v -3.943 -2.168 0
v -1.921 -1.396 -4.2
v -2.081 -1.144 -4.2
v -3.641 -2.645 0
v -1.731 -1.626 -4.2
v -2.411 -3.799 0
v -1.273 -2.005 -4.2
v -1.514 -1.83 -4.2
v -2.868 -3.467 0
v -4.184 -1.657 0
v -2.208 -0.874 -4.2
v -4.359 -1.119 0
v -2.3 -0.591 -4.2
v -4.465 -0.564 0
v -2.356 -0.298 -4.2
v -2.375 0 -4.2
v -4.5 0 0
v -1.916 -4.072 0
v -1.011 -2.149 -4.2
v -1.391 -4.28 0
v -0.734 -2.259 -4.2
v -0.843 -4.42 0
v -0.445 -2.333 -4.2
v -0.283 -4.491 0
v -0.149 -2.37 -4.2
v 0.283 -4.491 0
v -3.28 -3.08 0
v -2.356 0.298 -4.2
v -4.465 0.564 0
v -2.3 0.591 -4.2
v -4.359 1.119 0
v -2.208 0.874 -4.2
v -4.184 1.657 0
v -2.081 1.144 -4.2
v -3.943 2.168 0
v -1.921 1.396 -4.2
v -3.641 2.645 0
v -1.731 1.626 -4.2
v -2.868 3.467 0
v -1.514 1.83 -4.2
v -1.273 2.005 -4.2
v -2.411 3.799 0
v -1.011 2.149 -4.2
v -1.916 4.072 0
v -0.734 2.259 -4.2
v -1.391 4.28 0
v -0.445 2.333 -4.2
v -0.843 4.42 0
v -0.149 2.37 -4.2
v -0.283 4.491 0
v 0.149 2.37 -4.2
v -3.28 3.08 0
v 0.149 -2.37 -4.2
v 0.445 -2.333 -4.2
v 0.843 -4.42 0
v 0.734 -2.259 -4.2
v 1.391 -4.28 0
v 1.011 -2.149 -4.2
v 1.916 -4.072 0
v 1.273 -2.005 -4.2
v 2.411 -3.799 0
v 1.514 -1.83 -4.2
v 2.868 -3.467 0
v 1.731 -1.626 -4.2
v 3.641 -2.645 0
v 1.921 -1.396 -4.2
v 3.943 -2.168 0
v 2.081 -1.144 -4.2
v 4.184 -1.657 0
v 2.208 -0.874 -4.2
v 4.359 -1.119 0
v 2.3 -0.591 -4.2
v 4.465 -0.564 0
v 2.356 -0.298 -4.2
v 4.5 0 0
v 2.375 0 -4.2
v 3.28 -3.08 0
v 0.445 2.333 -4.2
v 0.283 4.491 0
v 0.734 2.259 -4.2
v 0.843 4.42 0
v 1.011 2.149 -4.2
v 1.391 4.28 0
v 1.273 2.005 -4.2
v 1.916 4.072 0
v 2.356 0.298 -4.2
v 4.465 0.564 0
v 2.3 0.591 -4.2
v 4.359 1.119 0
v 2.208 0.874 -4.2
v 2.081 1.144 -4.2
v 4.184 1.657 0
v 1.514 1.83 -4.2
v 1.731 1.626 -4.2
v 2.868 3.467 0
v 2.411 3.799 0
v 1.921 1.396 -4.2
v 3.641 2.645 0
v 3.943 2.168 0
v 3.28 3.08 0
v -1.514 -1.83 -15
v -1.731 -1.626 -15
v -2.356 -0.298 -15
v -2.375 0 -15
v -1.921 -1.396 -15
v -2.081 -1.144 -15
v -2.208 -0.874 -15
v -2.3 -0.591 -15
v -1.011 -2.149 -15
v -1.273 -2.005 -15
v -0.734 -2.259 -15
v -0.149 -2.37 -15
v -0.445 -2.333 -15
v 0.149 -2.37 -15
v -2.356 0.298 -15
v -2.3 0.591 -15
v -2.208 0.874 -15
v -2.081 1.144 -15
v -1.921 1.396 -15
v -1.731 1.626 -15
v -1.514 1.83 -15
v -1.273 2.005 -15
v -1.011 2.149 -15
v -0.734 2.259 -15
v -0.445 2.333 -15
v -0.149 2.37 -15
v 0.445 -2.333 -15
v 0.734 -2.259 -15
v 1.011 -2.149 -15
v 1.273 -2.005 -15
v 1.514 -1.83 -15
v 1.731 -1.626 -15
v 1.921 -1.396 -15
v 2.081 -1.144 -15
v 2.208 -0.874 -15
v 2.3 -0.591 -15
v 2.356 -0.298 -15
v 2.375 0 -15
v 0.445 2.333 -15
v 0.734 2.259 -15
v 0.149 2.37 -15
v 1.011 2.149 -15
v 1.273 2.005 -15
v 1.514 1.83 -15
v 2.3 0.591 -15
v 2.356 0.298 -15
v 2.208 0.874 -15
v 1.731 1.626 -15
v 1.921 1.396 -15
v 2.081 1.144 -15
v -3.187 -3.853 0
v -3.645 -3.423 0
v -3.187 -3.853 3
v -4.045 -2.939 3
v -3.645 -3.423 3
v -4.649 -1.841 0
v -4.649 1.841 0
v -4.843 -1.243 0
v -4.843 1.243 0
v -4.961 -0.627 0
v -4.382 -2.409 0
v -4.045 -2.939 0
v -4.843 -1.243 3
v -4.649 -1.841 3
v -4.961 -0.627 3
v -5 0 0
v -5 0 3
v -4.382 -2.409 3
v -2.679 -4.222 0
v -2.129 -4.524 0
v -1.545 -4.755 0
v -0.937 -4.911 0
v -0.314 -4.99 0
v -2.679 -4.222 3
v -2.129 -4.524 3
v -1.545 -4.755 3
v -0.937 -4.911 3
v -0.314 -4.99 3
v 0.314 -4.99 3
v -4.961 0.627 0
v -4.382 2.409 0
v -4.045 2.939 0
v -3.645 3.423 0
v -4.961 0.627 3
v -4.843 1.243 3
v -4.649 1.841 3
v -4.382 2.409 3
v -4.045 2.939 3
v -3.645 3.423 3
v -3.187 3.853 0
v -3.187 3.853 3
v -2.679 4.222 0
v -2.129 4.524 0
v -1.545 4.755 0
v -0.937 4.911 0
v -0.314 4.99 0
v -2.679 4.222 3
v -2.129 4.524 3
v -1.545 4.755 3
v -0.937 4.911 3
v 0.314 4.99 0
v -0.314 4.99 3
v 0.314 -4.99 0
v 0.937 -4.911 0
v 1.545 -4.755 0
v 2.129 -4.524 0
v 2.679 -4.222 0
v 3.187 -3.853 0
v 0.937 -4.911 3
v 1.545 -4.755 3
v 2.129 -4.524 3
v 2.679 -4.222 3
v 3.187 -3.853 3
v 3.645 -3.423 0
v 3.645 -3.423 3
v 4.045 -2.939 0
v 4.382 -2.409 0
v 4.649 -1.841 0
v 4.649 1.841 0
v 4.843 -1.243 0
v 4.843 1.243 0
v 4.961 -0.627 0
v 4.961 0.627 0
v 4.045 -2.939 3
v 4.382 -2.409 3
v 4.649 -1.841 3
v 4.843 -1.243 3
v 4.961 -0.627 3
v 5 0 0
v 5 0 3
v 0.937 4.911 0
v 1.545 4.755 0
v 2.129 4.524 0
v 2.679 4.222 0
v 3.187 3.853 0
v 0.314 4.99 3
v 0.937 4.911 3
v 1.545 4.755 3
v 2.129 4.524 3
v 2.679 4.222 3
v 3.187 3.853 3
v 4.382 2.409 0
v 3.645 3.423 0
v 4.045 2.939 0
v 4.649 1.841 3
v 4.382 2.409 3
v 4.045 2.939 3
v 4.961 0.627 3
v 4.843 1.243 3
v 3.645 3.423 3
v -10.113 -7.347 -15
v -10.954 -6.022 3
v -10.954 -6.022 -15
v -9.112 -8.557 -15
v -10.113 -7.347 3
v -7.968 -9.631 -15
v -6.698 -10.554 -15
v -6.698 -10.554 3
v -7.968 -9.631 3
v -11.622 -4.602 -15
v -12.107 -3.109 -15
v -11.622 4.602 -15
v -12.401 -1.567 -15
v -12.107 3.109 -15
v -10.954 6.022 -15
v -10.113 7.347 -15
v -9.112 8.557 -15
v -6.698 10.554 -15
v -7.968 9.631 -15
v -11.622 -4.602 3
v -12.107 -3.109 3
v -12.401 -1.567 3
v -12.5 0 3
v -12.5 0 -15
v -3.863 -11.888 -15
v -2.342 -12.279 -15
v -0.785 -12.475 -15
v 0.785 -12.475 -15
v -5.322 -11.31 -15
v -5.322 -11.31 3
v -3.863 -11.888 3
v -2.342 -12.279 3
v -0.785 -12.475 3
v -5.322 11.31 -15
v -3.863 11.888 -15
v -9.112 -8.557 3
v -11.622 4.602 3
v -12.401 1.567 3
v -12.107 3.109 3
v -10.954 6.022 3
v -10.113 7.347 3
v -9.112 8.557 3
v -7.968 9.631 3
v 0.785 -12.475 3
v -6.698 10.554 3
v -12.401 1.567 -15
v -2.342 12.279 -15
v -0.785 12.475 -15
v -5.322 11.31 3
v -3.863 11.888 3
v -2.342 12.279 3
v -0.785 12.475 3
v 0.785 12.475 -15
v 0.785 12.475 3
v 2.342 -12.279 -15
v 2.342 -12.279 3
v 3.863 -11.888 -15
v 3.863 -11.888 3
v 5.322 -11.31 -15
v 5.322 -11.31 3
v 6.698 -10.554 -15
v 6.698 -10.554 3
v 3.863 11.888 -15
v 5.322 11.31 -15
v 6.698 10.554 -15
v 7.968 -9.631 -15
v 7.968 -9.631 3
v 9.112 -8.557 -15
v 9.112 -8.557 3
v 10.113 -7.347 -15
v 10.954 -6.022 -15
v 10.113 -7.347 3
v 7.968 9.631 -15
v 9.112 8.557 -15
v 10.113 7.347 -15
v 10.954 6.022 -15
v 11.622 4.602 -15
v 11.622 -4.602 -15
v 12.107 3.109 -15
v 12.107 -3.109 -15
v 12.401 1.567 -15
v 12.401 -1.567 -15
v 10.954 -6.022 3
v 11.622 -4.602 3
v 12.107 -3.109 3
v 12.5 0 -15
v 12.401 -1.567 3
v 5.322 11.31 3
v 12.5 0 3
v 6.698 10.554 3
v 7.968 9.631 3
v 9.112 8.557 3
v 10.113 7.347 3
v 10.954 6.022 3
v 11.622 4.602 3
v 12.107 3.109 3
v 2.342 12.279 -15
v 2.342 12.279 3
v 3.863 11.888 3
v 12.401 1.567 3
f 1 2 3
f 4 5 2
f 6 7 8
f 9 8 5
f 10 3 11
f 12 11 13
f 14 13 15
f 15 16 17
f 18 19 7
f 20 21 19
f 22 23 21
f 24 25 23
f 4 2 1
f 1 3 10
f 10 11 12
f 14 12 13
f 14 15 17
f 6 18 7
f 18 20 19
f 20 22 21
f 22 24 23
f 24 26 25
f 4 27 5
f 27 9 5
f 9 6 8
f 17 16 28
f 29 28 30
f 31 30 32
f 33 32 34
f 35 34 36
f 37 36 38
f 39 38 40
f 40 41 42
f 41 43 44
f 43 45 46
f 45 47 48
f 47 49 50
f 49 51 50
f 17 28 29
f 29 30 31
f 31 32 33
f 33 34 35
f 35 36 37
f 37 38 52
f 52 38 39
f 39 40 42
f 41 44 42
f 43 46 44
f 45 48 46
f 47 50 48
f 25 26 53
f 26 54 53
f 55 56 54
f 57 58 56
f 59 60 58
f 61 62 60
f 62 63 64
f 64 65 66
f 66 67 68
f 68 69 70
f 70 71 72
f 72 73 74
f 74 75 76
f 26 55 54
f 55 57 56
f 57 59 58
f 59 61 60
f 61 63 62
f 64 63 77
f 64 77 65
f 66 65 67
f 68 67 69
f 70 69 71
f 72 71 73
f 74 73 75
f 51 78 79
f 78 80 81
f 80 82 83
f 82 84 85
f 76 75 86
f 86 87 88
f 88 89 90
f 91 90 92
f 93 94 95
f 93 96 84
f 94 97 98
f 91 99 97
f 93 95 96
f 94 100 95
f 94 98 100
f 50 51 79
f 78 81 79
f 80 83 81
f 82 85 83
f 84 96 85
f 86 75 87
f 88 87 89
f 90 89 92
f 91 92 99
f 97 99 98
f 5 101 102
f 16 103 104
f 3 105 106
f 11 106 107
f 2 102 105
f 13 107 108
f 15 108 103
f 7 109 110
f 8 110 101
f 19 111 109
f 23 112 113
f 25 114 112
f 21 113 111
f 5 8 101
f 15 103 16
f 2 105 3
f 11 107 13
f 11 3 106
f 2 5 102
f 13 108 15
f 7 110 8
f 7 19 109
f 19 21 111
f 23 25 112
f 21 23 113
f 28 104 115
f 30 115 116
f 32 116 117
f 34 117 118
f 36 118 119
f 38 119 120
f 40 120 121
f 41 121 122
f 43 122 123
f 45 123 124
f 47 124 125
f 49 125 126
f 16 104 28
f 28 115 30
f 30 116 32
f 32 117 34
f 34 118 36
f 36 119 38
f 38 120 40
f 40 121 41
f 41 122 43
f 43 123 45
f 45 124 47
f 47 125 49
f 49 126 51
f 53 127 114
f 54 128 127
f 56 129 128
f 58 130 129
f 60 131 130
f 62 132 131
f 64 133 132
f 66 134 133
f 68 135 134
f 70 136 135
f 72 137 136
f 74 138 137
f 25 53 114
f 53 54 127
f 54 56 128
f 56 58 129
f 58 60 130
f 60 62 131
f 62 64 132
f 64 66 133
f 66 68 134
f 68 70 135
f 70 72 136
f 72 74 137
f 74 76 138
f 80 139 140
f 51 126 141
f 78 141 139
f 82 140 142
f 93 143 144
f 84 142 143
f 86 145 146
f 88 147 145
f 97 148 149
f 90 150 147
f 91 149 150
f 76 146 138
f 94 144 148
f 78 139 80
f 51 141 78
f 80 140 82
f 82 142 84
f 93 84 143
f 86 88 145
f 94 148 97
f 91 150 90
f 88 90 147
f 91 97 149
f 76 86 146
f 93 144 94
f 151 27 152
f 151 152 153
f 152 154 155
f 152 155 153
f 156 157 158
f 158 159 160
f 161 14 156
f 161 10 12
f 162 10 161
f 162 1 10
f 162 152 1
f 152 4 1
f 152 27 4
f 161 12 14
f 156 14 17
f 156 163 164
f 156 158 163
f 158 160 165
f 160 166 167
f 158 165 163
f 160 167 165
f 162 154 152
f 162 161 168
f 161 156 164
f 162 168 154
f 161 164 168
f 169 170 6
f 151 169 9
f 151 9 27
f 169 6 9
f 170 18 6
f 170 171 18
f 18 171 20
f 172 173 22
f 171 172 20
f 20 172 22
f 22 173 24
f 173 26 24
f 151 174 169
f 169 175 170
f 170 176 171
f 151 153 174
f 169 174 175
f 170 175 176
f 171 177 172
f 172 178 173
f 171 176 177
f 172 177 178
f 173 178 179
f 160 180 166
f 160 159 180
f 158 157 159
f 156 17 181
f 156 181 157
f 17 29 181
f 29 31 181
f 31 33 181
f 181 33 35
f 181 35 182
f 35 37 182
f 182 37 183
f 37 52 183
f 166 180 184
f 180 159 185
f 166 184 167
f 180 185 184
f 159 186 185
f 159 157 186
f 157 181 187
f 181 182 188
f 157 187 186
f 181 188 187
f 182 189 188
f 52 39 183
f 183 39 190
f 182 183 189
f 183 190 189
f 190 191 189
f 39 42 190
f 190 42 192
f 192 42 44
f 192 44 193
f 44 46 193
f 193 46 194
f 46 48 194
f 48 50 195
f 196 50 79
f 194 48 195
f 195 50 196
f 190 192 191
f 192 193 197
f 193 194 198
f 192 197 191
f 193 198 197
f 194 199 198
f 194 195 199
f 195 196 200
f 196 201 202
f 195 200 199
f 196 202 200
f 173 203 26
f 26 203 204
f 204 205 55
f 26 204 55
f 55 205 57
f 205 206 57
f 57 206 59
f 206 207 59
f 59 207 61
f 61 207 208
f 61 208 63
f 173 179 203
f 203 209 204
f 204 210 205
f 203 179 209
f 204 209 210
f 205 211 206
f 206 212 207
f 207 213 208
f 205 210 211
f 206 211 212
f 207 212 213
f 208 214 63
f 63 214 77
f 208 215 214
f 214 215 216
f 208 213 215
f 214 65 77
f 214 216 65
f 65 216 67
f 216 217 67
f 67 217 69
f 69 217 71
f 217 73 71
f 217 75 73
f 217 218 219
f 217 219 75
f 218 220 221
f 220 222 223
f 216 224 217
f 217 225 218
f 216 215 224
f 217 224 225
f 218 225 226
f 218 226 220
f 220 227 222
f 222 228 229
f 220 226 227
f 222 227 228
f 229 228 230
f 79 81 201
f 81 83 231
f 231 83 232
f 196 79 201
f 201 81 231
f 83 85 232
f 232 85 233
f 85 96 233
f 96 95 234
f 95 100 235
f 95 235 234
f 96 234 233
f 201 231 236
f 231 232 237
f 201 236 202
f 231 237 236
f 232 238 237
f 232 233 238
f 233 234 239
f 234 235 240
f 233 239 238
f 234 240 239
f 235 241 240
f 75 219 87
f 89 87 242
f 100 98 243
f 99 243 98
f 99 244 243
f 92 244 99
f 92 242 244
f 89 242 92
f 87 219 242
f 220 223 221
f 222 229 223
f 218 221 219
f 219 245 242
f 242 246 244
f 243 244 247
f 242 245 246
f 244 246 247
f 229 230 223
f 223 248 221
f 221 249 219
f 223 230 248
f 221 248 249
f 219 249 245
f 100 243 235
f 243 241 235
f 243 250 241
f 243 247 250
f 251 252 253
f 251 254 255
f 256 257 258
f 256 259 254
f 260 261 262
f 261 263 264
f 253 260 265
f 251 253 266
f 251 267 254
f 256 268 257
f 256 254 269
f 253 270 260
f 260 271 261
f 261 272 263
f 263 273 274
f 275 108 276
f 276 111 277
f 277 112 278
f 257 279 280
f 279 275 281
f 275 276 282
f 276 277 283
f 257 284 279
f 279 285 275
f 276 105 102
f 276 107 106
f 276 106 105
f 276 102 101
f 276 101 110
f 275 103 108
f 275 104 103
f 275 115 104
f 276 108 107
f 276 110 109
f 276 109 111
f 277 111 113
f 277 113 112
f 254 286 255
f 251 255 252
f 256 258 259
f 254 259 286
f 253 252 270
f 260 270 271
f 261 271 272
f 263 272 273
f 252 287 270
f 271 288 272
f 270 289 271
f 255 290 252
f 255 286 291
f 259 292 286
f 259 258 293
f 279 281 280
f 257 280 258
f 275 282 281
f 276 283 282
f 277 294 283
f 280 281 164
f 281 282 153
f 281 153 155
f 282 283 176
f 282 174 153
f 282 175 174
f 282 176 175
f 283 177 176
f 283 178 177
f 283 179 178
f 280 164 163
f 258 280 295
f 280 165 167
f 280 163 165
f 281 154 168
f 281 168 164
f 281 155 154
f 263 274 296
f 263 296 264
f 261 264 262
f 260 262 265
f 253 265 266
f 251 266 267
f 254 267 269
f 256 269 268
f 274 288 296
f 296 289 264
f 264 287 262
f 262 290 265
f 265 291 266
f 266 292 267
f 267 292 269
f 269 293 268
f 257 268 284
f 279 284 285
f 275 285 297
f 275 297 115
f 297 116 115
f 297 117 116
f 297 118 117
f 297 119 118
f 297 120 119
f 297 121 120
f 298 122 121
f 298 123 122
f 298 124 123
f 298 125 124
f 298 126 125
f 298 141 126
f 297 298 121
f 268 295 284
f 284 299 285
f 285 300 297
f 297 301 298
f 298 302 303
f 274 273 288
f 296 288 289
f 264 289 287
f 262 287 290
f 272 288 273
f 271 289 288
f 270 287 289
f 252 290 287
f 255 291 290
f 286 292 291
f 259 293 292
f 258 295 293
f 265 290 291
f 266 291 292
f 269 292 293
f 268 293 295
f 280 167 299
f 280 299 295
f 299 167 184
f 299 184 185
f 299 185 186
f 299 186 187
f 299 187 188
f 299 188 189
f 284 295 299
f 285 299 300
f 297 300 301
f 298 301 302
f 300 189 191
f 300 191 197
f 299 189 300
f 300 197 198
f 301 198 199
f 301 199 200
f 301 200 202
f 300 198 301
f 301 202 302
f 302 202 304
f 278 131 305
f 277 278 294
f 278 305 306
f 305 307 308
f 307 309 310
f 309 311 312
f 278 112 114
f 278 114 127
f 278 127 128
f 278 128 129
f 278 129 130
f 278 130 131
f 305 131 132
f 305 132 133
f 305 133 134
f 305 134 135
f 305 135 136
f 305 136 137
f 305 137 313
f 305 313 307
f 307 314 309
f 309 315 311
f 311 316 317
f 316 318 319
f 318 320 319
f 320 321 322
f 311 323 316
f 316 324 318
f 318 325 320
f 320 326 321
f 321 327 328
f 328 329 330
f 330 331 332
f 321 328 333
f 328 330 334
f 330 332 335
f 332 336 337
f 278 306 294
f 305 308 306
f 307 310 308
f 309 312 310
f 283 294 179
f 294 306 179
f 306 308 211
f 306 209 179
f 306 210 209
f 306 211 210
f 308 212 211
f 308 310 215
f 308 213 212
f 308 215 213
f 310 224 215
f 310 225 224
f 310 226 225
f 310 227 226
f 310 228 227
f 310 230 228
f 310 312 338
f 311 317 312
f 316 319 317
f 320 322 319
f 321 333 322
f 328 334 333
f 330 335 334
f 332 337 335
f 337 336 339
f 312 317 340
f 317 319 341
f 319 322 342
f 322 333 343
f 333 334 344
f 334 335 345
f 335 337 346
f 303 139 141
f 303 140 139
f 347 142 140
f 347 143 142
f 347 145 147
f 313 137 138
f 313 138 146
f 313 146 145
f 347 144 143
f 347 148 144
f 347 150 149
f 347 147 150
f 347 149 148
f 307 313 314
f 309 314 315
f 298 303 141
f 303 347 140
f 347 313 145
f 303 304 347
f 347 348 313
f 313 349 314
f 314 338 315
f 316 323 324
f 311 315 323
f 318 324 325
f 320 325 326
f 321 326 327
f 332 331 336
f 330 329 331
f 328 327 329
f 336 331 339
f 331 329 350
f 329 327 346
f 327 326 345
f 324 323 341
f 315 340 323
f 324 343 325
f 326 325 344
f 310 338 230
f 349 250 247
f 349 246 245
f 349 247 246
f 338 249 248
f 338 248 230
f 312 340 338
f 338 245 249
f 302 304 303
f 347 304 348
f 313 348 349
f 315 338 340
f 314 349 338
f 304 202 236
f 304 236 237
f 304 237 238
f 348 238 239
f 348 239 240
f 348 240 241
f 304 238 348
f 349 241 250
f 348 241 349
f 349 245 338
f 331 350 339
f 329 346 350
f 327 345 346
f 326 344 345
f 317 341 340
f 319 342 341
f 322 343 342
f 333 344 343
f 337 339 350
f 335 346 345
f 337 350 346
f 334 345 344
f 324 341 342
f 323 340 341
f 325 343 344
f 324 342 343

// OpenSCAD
$fn = 50;

difference() {
	union() {
		translate(v = [0, 0, -15.0]) {
			cylinder(h = 18, r = 12.5);
		}
	}
	union() {
		translate(v = [0, 0, 0]) {
			rotate(a = [0, 0, 0]) {
				difference() {
					union() {
						translate(v = [0, 0, -18.0]) {
							cylinder(h = 18, r = 2.25);
						}
						translate(v = [0, 0, -4.2]) {
							cylinder(h = 4.2, r1 = 2.375, r2 = 4.5);
						}
						translate(v = [0, 0, -18.0]) {
							cylinder(h = 18, r = 2.375);
						}
						translate(v = [0, 0, -18.0]) {
							cylinder(h = 18, r = 2.25);
						}
					}
					union();
				}
			}
		}
		#cylinder(h = 3, r = 5.0);
	}
}
